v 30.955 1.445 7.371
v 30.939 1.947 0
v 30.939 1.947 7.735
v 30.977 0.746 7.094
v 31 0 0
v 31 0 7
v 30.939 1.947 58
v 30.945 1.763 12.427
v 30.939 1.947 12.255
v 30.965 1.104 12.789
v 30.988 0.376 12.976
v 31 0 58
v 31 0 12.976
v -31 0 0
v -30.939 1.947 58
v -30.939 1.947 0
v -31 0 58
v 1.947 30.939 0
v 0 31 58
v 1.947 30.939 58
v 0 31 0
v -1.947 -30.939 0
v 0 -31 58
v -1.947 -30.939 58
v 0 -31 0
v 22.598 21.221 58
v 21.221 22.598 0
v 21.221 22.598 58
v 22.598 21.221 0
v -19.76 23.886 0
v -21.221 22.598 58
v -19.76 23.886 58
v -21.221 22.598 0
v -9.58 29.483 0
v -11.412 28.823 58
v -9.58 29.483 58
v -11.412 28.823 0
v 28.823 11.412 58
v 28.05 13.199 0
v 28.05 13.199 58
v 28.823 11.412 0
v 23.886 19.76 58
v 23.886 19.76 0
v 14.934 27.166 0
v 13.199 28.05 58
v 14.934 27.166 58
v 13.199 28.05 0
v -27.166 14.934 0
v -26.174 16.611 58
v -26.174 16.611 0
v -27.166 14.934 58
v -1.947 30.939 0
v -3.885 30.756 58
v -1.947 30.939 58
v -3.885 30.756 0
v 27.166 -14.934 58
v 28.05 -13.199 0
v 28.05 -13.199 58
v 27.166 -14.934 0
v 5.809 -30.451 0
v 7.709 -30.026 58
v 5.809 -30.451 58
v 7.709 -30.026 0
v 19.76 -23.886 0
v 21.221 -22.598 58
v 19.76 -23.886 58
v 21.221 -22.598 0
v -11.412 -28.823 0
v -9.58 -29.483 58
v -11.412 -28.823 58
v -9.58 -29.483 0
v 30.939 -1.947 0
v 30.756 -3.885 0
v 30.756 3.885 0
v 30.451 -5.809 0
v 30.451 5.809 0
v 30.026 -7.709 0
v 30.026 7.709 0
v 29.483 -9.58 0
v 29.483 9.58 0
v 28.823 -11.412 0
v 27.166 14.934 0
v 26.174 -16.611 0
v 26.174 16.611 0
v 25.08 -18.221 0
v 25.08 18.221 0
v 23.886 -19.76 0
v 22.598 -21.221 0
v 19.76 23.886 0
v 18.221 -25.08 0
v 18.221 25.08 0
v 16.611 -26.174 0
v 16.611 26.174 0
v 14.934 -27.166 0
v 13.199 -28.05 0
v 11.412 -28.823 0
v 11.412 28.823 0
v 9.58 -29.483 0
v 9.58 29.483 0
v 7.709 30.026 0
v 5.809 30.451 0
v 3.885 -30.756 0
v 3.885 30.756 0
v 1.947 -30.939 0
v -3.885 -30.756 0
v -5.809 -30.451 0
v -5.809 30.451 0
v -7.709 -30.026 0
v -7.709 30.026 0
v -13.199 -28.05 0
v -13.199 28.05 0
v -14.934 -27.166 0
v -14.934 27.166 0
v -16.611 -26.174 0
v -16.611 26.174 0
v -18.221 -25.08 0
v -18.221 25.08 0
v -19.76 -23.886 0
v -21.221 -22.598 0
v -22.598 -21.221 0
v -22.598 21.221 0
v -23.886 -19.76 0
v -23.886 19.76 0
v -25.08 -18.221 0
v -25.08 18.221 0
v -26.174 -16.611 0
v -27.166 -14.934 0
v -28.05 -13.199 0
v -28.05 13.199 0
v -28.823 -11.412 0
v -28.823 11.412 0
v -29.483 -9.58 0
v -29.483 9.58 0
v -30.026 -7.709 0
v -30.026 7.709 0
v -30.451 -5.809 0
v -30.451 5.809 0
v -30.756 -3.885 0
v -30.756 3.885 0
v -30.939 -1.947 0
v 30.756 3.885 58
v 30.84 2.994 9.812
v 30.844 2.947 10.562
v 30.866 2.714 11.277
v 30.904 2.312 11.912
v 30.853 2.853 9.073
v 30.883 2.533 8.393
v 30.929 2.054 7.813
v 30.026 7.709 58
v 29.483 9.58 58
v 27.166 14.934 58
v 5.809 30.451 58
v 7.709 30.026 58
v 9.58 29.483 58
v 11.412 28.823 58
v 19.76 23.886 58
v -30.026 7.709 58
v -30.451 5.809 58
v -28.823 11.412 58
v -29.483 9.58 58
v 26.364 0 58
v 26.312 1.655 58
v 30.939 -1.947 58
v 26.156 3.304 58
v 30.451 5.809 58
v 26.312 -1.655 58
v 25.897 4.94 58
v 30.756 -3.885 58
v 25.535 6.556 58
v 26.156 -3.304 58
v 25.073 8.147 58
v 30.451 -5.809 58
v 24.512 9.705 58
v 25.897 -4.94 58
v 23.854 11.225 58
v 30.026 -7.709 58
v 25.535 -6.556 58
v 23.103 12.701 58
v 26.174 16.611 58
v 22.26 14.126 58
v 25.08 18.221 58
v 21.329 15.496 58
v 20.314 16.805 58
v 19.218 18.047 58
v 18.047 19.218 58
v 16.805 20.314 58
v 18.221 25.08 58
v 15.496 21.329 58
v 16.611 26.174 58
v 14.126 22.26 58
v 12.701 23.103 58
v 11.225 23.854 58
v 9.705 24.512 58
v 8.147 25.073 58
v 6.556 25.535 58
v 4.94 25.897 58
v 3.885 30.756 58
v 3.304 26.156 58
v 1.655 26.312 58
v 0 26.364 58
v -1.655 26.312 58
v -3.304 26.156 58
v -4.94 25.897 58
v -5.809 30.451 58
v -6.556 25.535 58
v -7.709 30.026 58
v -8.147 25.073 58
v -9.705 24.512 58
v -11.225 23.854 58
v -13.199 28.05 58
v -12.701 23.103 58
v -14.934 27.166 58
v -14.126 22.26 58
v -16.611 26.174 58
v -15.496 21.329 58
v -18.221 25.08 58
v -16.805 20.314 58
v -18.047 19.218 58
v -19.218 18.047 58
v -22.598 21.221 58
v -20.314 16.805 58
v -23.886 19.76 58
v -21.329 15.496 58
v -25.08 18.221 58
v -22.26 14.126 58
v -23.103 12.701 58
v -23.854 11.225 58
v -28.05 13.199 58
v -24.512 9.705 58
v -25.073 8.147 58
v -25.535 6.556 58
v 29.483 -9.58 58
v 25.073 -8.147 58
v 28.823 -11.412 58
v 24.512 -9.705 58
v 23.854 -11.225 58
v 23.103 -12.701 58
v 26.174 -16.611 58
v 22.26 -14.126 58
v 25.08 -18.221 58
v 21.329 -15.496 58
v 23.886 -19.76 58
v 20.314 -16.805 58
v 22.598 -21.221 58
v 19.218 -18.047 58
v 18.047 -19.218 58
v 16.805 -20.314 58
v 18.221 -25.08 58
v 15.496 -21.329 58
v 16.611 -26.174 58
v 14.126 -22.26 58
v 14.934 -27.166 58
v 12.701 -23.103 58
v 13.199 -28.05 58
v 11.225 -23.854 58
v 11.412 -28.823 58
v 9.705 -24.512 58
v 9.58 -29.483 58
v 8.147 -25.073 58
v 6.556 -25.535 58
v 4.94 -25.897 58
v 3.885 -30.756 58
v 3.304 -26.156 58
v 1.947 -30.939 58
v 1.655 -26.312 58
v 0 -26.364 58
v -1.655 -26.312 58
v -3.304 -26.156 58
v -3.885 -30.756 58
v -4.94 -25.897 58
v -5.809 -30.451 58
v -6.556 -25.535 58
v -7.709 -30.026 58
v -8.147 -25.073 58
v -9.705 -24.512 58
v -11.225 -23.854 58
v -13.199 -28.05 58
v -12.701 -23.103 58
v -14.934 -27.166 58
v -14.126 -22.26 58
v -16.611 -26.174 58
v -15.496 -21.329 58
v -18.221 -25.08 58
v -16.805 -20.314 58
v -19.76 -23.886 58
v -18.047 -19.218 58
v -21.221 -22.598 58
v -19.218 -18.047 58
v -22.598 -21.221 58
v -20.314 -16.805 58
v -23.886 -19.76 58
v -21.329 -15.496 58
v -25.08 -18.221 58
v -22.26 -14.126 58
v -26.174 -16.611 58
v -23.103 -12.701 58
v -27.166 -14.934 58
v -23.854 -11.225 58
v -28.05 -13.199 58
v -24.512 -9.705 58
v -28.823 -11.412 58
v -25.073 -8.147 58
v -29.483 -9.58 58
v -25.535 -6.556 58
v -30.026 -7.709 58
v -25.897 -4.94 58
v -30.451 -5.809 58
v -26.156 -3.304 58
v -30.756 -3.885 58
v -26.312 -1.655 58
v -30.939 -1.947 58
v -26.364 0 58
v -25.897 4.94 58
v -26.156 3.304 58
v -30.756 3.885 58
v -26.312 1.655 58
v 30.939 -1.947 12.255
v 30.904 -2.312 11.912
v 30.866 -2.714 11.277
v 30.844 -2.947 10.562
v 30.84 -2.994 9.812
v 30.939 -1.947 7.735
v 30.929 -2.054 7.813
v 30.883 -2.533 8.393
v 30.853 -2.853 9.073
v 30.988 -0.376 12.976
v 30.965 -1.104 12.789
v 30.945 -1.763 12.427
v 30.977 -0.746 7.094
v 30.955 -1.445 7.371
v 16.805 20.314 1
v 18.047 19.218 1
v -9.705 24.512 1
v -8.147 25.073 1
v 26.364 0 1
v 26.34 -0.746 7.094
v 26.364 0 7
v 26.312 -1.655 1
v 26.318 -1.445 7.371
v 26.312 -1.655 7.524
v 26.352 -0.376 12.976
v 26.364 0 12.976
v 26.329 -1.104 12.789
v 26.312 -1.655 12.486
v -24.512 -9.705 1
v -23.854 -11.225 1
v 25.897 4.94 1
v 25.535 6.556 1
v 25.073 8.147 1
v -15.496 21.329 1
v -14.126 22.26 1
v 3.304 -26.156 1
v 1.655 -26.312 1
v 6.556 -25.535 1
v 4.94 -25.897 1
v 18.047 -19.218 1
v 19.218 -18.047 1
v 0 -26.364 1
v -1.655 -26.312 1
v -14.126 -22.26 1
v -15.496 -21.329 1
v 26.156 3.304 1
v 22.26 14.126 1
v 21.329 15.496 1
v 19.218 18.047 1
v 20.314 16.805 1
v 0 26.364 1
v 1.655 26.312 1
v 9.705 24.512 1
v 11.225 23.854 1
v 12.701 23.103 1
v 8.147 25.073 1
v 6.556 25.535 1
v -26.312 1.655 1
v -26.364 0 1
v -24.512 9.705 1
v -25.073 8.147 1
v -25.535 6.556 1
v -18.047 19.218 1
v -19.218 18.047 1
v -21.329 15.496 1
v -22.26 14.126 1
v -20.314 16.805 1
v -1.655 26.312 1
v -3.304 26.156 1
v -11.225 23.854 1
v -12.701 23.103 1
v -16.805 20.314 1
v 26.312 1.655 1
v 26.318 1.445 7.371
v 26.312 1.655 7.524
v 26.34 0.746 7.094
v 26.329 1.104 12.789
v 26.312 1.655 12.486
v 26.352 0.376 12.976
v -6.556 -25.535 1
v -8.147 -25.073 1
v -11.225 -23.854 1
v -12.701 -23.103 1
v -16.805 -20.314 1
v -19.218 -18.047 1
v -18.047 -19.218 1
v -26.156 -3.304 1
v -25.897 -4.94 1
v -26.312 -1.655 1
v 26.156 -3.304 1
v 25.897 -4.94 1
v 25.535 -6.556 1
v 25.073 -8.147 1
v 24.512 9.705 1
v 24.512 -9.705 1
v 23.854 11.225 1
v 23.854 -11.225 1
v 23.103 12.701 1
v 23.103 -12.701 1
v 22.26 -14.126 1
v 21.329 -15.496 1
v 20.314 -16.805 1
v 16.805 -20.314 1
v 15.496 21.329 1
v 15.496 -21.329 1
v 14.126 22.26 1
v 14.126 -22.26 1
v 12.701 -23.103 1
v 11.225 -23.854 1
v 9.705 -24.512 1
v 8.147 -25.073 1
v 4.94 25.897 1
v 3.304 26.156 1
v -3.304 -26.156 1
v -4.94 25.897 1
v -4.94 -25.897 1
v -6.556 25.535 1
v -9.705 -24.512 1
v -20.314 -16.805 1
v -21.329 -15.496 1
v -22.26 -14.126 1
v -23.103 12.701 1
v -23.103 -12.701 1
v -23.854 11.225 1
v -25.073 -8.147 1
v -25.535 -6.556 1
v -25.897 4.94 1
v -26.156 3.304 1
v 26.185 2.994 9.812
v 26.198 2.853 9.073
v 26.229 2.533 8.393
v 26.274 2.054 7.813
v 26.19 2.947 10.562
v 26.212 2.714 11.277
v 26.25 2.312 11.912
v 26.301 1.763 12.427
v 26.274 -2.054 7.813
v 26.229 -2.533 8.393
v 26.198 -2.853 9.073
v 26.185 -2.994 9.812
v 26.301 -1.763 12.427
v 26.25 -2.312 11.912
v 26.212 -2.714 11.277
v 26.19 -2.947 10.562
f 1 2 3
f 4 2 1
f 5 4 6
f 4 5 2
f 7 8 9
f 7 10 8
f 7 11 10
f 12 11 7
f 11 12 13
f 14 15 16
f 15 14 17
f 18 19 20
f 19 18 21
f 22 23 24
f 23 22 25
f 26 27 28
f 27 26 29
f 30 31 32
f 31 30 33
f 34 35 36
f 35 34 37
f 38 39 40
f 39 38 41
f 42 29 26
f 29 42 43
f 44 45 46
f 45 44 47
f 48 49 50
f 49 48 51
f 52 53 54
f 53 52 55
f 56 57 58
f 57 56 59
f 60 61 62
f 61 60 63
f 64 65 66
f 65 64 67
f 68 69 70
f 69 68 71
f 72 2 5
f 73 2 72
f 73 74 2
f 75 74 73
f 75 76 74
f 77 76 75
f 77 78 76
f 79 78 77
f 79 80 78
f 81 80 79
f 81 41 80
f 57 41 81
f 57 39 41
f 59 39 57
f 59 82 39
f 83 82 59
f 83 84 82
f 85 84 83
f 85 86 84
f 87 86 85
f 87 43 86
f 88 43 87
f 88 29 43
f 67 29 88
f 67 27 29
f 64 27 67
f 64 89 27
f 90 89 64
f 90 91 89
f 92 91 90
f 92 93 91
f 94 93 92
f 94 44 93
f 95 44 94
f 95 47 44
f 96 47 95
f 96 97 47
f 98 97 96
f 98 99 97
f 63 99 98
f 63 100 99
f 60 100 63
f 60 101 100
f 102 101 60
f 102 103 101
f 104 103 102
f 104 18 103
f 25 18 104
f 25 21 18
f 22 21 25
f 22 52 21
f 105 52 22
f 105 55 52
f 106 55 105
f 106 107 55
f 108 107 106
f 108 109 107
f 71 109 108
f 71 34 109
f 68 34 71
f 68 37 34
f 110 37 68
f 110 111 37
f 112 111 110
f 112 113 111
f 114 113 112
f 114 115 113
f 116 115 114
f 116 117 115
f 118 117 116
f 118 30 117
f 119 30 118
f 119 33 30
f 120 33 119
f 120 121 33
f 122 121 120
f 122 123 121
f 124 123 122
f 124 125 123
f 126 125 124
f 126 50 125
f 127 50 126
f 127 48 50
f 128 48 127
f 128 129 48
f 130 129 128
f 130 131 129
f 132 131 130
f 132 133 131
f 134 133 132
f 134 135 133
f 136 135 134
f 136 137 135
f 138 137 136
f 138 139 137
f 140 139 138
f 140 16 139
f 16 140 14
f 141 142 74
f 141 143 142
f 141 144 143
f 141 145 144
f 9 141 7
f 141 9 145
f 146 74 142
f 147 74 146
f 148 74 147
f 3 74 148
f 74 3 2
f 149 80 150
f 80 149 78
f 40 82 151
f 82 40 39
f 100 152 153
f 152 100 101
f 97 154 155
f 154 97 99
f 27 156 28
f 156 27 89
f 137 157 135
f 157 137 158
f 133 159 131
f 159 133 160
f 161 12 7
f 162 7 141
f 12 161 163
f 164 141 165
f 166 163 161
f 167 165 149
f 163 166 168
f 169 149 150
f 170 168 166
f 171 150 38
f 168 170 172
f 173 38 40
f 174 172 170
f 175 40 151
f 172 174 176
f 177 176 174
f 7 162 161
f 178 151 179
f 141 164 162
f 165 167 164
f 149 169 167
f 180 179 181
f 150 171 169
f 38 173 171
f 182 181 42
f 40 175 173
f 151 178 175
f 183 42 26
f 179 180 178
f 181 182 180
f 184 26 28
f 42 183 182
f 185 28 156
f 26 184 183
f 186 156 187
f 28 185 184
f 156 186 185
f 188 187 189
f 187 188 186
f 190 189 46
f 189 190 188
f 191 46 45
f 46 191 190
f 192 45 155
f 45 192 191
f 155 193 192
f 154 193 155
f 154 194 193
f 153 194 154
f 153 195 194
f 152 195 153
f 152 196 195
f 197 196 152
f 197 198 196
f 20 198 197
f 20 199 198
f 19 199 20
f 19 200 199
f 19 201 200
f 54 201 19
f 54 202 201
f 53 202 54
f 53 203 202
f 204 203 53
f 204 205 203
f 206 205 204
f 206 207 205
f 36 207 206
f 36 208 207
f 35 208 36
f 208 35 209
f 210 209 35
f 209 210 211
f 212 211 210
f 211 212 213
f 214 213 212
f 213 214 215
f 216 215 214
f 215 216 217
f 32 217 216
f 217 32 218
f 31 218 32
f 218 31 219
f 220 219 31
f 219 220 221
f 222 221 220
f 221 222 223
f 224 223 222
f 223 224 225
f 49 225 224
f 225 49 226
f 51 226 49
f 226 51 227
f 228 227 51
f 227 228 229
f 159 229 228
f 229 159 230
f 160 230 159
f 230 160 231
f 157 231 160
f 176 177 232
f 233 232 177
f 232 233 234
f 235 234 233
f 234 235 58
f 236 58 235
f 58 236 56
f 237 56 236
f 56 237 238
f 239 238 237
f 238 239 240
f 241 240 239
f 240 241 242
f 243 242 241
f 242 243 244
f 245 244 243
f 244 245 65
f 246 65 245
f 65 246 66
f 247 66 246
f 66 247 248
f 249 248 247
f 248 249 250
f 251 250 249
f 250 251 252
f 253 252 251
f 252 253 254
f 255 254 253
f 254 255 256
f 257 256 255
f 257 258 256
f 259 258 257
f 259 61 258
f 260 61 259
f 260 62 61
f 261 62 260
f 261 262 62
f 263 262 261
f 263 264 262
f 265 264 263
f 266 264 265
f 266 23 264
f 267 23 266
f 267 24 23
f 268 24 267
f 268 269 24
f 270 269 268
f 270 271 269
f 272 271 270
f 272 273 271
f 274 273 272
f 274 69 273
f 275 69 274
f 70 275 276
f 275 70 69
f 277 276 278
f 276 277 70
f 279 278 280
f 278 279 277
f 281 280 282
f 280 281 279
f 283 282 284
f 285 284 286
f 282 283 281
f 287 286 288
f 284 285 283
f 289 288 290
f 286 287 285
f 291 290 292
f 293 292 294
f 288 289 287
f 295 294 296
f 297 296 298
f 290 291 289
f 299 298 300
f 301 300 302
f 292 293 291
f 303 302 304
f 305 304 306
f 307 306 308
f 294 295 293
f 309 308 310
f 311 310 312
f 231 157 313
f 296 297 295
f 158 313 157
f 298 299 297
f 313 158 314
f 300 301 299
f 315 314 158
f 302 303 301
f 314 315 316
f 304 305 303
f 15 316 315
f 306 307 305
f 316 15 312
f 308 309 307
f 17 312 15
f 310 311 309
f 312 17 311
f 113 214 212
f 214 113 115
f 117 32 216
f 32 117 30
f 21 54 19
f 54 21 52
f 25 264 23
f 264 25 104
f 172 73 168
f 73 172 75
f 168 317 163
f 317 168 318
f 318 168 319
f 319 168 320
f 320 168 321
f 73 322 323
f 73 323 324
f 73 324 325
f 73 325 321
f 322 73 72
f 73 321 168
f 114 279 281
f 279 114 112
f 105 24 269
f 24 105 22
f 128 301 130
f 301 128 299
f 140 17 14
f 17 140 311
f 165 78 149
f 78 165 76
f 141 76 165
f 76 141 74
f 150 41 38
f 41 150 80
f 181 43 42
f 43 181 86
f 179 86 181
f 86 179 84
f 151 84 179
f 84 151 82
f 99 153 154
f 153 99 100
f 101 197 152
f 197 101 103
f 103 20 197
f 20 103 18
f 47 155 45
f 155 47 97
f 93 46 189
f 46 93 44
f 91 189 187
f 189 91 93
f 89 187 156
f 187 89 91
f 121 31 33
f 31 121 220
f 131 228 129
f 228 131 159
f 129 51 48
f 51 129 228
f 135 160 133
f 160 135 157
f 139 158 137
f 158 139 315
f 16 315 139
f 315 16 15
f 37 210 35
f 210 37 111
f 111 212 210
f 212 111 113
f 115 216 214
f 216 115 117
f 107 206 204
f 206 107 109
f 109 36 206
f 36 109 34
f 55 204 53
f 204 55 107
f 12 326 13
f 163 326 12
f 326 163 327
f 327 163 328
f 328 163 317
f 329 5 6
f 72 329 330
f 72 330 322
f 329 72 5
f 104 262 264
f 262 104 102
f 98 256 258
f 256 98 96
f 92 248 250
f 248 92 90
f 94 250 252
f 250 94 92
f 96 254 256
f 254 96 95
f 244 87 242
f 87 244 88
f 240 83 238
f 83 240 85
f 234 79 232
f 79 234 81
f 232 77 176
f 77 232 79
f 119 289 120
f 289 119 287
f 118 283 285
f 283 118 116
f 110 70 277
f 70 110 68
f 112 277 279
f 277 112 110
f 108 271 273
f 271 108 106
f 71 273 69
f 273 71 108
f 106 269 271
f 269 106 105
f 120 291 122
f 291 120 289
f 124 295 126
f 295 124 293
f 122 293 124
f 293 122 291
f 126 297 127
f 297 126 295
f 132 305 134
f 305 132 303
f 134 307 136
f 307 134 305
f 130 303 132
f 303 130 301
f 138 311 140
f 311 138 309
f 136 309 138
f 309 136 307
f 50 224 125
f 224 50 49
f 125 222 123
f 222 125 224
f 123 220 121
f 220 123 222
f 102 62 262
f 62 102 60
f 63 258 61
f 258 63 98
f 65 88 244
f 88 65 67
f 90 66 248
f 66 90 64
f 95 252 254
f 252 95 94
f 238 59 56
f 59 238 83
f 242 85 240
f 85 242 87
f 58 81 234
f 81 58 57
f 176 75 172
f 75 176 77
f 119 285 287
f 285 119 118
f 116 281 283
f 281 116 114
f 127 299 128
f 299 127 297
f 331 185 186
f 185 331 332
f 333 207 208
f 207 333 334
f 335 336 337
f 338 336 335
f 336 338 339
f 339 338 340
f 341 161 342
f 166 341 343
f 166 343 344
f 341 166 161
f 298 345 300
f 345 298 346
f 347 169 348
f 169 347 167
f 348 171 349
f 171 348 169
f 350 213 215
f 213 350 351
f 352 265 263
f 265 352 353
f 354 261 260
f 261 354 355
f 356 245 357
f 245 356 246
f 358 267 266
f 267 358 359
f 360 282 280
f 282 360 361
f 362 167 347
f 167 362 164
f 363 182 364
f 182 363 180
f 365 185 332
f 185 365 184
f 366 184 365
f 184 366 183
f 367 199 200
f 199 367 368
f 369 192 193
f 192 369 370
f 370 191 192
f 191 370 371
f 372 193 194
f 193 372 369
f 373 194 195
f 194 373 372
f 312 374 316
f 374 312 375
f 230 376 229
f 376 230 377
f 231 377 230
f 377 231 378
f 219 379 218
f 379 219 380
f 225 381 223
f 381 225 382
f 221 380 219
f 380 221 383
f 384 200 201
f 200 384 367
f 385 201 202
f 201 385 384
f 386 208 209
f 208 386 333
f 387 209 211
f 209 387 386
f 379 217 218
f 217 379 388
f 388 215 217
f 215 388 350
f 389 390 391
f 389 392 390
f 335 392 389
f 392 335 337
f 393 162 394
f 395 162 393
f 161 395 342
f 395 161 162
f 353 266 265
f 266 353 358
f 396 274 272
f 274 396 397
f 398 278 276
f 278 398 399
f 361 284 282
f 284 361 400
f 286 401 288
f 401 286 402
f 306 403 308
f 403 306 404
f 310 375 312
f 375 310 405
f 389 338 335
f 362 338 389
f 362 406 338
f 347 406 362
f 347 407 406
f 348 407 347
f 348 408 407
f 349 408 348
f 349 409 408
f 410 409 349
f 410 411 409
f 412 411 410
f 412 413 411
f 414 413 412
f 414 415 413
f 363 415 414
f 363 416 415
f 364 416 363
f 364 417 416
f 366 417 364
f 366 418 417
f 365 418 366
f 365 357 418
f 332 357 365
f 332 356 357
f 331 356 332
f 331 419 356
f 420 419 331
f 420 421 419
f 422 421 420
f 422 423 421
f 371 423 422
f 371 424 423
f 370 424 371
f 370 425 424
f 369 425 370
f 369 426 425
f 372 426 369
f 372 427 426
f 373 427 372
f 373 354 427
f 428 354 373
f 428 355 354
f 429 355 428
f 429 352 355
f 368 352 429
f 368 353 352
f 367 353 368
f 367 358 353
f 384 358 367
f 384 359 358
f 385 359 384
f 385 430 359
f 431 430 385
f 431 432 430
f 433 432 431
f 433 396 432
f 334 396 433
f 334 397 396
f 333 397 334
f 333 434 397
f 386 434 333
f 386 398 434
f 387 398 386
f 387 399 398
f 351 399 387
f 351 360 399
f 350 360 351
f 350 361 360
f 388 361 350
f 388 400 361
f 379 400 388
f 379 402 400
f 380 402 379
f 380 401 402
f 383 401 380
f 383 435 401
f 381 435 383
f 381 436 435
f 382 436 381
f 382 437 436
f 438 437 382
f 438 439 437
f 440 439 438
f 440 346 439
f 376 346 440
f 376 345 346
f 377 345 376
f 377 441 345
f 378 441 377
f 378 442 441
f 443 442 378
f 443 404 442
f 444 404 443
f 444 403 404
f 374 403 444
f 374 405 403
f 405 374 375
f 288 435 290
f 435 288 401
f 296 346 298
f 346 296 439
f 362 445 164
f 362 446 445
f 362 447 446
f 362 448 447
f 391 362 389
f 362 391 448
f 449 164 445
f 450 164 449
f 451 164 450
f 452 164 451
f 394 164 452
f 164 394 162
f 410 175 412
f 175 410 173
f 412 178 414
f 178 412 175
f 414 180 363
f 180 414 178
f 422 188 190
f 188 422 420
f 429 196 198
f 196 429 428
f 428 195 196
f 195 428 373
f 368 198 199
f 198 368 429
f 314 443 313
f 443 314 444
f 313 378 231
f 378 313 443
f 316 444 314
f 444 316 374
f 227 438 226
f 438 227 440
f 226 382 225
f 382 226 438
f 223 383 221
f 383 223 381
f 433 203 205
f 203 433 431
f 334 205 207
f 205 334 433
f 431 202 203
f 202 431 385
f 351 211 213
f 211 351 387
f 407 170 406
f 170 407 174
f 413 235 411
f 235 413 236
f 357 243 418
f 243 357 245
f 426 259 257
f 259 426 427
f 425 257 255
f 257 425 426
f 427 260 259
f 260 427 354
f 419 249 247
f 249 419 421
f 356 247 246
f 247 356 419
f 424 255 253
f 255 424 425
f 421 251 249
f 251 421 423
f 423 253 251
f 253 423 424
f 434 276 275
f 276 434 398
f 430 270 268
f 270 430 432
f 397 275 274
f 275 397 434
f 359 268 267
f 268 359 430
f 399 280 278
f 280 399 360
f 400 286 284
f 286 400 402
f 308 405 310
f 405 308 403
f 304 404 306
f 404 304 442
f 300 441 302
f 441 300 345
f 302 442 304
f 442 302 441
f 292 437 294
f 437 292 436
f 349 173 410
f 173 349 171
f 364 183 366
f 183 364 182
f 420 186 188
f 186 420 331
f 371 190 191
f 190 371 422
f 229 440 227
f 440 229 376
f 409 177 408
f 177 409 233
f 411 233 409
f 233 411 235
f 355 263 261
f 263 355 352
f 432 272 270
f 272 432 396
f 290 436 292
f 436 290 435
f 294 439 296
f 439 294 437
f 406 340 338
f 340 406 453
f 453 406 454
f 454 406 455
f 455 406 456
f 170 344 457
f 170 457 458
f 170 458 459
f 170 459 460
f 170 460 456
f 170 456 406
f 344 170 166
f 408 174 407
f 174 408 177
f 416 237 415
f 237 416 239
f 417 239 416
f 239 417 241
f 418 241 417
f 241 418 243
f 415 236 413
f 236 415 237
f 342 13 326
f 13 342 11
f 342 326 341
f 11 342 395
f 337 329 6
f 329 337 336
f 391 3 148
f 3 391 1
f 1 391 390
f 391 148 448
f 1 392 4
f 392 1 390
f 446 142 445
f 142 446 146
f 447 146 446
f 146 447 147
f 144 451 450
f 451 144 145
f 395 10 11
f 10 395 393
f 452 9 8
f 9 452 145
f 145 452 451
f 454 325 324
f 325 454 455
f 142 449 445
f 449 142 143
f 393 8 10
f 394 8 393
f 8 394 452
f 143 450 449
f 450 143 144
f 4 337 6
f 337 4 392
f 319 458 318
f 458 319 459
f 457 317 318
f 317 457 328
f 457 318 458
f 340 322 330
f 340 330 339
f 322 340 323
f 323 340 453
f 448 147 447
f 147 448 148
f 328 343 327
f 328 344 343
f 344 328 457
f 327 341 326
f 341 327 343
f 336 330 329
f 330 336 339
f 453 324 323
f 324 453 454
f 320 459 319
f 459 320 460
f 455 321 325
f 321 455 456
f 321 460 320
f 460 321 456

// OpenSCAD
speaker_diameter = 58;
jack_barrel_diameter = 6;

difference(){
	// bottom bounding "box"
	cylinder(r=(speaker_diameter/2)+2,h=speaker_diameter,$fn=100);
	
	// center hole
	translate([0,0,1]){
		cylinder(r=speaker_diameter/2.2,h=speaker_diameter,$fn=100);
	}
	
	// speaker jack hole
	translate([0,0,10]){
		rotate([0,90,0]){
			cylinder(r=jack_barrel_diameter/2,h=speaker_diameter,$fn=25);
		}
	}
}
